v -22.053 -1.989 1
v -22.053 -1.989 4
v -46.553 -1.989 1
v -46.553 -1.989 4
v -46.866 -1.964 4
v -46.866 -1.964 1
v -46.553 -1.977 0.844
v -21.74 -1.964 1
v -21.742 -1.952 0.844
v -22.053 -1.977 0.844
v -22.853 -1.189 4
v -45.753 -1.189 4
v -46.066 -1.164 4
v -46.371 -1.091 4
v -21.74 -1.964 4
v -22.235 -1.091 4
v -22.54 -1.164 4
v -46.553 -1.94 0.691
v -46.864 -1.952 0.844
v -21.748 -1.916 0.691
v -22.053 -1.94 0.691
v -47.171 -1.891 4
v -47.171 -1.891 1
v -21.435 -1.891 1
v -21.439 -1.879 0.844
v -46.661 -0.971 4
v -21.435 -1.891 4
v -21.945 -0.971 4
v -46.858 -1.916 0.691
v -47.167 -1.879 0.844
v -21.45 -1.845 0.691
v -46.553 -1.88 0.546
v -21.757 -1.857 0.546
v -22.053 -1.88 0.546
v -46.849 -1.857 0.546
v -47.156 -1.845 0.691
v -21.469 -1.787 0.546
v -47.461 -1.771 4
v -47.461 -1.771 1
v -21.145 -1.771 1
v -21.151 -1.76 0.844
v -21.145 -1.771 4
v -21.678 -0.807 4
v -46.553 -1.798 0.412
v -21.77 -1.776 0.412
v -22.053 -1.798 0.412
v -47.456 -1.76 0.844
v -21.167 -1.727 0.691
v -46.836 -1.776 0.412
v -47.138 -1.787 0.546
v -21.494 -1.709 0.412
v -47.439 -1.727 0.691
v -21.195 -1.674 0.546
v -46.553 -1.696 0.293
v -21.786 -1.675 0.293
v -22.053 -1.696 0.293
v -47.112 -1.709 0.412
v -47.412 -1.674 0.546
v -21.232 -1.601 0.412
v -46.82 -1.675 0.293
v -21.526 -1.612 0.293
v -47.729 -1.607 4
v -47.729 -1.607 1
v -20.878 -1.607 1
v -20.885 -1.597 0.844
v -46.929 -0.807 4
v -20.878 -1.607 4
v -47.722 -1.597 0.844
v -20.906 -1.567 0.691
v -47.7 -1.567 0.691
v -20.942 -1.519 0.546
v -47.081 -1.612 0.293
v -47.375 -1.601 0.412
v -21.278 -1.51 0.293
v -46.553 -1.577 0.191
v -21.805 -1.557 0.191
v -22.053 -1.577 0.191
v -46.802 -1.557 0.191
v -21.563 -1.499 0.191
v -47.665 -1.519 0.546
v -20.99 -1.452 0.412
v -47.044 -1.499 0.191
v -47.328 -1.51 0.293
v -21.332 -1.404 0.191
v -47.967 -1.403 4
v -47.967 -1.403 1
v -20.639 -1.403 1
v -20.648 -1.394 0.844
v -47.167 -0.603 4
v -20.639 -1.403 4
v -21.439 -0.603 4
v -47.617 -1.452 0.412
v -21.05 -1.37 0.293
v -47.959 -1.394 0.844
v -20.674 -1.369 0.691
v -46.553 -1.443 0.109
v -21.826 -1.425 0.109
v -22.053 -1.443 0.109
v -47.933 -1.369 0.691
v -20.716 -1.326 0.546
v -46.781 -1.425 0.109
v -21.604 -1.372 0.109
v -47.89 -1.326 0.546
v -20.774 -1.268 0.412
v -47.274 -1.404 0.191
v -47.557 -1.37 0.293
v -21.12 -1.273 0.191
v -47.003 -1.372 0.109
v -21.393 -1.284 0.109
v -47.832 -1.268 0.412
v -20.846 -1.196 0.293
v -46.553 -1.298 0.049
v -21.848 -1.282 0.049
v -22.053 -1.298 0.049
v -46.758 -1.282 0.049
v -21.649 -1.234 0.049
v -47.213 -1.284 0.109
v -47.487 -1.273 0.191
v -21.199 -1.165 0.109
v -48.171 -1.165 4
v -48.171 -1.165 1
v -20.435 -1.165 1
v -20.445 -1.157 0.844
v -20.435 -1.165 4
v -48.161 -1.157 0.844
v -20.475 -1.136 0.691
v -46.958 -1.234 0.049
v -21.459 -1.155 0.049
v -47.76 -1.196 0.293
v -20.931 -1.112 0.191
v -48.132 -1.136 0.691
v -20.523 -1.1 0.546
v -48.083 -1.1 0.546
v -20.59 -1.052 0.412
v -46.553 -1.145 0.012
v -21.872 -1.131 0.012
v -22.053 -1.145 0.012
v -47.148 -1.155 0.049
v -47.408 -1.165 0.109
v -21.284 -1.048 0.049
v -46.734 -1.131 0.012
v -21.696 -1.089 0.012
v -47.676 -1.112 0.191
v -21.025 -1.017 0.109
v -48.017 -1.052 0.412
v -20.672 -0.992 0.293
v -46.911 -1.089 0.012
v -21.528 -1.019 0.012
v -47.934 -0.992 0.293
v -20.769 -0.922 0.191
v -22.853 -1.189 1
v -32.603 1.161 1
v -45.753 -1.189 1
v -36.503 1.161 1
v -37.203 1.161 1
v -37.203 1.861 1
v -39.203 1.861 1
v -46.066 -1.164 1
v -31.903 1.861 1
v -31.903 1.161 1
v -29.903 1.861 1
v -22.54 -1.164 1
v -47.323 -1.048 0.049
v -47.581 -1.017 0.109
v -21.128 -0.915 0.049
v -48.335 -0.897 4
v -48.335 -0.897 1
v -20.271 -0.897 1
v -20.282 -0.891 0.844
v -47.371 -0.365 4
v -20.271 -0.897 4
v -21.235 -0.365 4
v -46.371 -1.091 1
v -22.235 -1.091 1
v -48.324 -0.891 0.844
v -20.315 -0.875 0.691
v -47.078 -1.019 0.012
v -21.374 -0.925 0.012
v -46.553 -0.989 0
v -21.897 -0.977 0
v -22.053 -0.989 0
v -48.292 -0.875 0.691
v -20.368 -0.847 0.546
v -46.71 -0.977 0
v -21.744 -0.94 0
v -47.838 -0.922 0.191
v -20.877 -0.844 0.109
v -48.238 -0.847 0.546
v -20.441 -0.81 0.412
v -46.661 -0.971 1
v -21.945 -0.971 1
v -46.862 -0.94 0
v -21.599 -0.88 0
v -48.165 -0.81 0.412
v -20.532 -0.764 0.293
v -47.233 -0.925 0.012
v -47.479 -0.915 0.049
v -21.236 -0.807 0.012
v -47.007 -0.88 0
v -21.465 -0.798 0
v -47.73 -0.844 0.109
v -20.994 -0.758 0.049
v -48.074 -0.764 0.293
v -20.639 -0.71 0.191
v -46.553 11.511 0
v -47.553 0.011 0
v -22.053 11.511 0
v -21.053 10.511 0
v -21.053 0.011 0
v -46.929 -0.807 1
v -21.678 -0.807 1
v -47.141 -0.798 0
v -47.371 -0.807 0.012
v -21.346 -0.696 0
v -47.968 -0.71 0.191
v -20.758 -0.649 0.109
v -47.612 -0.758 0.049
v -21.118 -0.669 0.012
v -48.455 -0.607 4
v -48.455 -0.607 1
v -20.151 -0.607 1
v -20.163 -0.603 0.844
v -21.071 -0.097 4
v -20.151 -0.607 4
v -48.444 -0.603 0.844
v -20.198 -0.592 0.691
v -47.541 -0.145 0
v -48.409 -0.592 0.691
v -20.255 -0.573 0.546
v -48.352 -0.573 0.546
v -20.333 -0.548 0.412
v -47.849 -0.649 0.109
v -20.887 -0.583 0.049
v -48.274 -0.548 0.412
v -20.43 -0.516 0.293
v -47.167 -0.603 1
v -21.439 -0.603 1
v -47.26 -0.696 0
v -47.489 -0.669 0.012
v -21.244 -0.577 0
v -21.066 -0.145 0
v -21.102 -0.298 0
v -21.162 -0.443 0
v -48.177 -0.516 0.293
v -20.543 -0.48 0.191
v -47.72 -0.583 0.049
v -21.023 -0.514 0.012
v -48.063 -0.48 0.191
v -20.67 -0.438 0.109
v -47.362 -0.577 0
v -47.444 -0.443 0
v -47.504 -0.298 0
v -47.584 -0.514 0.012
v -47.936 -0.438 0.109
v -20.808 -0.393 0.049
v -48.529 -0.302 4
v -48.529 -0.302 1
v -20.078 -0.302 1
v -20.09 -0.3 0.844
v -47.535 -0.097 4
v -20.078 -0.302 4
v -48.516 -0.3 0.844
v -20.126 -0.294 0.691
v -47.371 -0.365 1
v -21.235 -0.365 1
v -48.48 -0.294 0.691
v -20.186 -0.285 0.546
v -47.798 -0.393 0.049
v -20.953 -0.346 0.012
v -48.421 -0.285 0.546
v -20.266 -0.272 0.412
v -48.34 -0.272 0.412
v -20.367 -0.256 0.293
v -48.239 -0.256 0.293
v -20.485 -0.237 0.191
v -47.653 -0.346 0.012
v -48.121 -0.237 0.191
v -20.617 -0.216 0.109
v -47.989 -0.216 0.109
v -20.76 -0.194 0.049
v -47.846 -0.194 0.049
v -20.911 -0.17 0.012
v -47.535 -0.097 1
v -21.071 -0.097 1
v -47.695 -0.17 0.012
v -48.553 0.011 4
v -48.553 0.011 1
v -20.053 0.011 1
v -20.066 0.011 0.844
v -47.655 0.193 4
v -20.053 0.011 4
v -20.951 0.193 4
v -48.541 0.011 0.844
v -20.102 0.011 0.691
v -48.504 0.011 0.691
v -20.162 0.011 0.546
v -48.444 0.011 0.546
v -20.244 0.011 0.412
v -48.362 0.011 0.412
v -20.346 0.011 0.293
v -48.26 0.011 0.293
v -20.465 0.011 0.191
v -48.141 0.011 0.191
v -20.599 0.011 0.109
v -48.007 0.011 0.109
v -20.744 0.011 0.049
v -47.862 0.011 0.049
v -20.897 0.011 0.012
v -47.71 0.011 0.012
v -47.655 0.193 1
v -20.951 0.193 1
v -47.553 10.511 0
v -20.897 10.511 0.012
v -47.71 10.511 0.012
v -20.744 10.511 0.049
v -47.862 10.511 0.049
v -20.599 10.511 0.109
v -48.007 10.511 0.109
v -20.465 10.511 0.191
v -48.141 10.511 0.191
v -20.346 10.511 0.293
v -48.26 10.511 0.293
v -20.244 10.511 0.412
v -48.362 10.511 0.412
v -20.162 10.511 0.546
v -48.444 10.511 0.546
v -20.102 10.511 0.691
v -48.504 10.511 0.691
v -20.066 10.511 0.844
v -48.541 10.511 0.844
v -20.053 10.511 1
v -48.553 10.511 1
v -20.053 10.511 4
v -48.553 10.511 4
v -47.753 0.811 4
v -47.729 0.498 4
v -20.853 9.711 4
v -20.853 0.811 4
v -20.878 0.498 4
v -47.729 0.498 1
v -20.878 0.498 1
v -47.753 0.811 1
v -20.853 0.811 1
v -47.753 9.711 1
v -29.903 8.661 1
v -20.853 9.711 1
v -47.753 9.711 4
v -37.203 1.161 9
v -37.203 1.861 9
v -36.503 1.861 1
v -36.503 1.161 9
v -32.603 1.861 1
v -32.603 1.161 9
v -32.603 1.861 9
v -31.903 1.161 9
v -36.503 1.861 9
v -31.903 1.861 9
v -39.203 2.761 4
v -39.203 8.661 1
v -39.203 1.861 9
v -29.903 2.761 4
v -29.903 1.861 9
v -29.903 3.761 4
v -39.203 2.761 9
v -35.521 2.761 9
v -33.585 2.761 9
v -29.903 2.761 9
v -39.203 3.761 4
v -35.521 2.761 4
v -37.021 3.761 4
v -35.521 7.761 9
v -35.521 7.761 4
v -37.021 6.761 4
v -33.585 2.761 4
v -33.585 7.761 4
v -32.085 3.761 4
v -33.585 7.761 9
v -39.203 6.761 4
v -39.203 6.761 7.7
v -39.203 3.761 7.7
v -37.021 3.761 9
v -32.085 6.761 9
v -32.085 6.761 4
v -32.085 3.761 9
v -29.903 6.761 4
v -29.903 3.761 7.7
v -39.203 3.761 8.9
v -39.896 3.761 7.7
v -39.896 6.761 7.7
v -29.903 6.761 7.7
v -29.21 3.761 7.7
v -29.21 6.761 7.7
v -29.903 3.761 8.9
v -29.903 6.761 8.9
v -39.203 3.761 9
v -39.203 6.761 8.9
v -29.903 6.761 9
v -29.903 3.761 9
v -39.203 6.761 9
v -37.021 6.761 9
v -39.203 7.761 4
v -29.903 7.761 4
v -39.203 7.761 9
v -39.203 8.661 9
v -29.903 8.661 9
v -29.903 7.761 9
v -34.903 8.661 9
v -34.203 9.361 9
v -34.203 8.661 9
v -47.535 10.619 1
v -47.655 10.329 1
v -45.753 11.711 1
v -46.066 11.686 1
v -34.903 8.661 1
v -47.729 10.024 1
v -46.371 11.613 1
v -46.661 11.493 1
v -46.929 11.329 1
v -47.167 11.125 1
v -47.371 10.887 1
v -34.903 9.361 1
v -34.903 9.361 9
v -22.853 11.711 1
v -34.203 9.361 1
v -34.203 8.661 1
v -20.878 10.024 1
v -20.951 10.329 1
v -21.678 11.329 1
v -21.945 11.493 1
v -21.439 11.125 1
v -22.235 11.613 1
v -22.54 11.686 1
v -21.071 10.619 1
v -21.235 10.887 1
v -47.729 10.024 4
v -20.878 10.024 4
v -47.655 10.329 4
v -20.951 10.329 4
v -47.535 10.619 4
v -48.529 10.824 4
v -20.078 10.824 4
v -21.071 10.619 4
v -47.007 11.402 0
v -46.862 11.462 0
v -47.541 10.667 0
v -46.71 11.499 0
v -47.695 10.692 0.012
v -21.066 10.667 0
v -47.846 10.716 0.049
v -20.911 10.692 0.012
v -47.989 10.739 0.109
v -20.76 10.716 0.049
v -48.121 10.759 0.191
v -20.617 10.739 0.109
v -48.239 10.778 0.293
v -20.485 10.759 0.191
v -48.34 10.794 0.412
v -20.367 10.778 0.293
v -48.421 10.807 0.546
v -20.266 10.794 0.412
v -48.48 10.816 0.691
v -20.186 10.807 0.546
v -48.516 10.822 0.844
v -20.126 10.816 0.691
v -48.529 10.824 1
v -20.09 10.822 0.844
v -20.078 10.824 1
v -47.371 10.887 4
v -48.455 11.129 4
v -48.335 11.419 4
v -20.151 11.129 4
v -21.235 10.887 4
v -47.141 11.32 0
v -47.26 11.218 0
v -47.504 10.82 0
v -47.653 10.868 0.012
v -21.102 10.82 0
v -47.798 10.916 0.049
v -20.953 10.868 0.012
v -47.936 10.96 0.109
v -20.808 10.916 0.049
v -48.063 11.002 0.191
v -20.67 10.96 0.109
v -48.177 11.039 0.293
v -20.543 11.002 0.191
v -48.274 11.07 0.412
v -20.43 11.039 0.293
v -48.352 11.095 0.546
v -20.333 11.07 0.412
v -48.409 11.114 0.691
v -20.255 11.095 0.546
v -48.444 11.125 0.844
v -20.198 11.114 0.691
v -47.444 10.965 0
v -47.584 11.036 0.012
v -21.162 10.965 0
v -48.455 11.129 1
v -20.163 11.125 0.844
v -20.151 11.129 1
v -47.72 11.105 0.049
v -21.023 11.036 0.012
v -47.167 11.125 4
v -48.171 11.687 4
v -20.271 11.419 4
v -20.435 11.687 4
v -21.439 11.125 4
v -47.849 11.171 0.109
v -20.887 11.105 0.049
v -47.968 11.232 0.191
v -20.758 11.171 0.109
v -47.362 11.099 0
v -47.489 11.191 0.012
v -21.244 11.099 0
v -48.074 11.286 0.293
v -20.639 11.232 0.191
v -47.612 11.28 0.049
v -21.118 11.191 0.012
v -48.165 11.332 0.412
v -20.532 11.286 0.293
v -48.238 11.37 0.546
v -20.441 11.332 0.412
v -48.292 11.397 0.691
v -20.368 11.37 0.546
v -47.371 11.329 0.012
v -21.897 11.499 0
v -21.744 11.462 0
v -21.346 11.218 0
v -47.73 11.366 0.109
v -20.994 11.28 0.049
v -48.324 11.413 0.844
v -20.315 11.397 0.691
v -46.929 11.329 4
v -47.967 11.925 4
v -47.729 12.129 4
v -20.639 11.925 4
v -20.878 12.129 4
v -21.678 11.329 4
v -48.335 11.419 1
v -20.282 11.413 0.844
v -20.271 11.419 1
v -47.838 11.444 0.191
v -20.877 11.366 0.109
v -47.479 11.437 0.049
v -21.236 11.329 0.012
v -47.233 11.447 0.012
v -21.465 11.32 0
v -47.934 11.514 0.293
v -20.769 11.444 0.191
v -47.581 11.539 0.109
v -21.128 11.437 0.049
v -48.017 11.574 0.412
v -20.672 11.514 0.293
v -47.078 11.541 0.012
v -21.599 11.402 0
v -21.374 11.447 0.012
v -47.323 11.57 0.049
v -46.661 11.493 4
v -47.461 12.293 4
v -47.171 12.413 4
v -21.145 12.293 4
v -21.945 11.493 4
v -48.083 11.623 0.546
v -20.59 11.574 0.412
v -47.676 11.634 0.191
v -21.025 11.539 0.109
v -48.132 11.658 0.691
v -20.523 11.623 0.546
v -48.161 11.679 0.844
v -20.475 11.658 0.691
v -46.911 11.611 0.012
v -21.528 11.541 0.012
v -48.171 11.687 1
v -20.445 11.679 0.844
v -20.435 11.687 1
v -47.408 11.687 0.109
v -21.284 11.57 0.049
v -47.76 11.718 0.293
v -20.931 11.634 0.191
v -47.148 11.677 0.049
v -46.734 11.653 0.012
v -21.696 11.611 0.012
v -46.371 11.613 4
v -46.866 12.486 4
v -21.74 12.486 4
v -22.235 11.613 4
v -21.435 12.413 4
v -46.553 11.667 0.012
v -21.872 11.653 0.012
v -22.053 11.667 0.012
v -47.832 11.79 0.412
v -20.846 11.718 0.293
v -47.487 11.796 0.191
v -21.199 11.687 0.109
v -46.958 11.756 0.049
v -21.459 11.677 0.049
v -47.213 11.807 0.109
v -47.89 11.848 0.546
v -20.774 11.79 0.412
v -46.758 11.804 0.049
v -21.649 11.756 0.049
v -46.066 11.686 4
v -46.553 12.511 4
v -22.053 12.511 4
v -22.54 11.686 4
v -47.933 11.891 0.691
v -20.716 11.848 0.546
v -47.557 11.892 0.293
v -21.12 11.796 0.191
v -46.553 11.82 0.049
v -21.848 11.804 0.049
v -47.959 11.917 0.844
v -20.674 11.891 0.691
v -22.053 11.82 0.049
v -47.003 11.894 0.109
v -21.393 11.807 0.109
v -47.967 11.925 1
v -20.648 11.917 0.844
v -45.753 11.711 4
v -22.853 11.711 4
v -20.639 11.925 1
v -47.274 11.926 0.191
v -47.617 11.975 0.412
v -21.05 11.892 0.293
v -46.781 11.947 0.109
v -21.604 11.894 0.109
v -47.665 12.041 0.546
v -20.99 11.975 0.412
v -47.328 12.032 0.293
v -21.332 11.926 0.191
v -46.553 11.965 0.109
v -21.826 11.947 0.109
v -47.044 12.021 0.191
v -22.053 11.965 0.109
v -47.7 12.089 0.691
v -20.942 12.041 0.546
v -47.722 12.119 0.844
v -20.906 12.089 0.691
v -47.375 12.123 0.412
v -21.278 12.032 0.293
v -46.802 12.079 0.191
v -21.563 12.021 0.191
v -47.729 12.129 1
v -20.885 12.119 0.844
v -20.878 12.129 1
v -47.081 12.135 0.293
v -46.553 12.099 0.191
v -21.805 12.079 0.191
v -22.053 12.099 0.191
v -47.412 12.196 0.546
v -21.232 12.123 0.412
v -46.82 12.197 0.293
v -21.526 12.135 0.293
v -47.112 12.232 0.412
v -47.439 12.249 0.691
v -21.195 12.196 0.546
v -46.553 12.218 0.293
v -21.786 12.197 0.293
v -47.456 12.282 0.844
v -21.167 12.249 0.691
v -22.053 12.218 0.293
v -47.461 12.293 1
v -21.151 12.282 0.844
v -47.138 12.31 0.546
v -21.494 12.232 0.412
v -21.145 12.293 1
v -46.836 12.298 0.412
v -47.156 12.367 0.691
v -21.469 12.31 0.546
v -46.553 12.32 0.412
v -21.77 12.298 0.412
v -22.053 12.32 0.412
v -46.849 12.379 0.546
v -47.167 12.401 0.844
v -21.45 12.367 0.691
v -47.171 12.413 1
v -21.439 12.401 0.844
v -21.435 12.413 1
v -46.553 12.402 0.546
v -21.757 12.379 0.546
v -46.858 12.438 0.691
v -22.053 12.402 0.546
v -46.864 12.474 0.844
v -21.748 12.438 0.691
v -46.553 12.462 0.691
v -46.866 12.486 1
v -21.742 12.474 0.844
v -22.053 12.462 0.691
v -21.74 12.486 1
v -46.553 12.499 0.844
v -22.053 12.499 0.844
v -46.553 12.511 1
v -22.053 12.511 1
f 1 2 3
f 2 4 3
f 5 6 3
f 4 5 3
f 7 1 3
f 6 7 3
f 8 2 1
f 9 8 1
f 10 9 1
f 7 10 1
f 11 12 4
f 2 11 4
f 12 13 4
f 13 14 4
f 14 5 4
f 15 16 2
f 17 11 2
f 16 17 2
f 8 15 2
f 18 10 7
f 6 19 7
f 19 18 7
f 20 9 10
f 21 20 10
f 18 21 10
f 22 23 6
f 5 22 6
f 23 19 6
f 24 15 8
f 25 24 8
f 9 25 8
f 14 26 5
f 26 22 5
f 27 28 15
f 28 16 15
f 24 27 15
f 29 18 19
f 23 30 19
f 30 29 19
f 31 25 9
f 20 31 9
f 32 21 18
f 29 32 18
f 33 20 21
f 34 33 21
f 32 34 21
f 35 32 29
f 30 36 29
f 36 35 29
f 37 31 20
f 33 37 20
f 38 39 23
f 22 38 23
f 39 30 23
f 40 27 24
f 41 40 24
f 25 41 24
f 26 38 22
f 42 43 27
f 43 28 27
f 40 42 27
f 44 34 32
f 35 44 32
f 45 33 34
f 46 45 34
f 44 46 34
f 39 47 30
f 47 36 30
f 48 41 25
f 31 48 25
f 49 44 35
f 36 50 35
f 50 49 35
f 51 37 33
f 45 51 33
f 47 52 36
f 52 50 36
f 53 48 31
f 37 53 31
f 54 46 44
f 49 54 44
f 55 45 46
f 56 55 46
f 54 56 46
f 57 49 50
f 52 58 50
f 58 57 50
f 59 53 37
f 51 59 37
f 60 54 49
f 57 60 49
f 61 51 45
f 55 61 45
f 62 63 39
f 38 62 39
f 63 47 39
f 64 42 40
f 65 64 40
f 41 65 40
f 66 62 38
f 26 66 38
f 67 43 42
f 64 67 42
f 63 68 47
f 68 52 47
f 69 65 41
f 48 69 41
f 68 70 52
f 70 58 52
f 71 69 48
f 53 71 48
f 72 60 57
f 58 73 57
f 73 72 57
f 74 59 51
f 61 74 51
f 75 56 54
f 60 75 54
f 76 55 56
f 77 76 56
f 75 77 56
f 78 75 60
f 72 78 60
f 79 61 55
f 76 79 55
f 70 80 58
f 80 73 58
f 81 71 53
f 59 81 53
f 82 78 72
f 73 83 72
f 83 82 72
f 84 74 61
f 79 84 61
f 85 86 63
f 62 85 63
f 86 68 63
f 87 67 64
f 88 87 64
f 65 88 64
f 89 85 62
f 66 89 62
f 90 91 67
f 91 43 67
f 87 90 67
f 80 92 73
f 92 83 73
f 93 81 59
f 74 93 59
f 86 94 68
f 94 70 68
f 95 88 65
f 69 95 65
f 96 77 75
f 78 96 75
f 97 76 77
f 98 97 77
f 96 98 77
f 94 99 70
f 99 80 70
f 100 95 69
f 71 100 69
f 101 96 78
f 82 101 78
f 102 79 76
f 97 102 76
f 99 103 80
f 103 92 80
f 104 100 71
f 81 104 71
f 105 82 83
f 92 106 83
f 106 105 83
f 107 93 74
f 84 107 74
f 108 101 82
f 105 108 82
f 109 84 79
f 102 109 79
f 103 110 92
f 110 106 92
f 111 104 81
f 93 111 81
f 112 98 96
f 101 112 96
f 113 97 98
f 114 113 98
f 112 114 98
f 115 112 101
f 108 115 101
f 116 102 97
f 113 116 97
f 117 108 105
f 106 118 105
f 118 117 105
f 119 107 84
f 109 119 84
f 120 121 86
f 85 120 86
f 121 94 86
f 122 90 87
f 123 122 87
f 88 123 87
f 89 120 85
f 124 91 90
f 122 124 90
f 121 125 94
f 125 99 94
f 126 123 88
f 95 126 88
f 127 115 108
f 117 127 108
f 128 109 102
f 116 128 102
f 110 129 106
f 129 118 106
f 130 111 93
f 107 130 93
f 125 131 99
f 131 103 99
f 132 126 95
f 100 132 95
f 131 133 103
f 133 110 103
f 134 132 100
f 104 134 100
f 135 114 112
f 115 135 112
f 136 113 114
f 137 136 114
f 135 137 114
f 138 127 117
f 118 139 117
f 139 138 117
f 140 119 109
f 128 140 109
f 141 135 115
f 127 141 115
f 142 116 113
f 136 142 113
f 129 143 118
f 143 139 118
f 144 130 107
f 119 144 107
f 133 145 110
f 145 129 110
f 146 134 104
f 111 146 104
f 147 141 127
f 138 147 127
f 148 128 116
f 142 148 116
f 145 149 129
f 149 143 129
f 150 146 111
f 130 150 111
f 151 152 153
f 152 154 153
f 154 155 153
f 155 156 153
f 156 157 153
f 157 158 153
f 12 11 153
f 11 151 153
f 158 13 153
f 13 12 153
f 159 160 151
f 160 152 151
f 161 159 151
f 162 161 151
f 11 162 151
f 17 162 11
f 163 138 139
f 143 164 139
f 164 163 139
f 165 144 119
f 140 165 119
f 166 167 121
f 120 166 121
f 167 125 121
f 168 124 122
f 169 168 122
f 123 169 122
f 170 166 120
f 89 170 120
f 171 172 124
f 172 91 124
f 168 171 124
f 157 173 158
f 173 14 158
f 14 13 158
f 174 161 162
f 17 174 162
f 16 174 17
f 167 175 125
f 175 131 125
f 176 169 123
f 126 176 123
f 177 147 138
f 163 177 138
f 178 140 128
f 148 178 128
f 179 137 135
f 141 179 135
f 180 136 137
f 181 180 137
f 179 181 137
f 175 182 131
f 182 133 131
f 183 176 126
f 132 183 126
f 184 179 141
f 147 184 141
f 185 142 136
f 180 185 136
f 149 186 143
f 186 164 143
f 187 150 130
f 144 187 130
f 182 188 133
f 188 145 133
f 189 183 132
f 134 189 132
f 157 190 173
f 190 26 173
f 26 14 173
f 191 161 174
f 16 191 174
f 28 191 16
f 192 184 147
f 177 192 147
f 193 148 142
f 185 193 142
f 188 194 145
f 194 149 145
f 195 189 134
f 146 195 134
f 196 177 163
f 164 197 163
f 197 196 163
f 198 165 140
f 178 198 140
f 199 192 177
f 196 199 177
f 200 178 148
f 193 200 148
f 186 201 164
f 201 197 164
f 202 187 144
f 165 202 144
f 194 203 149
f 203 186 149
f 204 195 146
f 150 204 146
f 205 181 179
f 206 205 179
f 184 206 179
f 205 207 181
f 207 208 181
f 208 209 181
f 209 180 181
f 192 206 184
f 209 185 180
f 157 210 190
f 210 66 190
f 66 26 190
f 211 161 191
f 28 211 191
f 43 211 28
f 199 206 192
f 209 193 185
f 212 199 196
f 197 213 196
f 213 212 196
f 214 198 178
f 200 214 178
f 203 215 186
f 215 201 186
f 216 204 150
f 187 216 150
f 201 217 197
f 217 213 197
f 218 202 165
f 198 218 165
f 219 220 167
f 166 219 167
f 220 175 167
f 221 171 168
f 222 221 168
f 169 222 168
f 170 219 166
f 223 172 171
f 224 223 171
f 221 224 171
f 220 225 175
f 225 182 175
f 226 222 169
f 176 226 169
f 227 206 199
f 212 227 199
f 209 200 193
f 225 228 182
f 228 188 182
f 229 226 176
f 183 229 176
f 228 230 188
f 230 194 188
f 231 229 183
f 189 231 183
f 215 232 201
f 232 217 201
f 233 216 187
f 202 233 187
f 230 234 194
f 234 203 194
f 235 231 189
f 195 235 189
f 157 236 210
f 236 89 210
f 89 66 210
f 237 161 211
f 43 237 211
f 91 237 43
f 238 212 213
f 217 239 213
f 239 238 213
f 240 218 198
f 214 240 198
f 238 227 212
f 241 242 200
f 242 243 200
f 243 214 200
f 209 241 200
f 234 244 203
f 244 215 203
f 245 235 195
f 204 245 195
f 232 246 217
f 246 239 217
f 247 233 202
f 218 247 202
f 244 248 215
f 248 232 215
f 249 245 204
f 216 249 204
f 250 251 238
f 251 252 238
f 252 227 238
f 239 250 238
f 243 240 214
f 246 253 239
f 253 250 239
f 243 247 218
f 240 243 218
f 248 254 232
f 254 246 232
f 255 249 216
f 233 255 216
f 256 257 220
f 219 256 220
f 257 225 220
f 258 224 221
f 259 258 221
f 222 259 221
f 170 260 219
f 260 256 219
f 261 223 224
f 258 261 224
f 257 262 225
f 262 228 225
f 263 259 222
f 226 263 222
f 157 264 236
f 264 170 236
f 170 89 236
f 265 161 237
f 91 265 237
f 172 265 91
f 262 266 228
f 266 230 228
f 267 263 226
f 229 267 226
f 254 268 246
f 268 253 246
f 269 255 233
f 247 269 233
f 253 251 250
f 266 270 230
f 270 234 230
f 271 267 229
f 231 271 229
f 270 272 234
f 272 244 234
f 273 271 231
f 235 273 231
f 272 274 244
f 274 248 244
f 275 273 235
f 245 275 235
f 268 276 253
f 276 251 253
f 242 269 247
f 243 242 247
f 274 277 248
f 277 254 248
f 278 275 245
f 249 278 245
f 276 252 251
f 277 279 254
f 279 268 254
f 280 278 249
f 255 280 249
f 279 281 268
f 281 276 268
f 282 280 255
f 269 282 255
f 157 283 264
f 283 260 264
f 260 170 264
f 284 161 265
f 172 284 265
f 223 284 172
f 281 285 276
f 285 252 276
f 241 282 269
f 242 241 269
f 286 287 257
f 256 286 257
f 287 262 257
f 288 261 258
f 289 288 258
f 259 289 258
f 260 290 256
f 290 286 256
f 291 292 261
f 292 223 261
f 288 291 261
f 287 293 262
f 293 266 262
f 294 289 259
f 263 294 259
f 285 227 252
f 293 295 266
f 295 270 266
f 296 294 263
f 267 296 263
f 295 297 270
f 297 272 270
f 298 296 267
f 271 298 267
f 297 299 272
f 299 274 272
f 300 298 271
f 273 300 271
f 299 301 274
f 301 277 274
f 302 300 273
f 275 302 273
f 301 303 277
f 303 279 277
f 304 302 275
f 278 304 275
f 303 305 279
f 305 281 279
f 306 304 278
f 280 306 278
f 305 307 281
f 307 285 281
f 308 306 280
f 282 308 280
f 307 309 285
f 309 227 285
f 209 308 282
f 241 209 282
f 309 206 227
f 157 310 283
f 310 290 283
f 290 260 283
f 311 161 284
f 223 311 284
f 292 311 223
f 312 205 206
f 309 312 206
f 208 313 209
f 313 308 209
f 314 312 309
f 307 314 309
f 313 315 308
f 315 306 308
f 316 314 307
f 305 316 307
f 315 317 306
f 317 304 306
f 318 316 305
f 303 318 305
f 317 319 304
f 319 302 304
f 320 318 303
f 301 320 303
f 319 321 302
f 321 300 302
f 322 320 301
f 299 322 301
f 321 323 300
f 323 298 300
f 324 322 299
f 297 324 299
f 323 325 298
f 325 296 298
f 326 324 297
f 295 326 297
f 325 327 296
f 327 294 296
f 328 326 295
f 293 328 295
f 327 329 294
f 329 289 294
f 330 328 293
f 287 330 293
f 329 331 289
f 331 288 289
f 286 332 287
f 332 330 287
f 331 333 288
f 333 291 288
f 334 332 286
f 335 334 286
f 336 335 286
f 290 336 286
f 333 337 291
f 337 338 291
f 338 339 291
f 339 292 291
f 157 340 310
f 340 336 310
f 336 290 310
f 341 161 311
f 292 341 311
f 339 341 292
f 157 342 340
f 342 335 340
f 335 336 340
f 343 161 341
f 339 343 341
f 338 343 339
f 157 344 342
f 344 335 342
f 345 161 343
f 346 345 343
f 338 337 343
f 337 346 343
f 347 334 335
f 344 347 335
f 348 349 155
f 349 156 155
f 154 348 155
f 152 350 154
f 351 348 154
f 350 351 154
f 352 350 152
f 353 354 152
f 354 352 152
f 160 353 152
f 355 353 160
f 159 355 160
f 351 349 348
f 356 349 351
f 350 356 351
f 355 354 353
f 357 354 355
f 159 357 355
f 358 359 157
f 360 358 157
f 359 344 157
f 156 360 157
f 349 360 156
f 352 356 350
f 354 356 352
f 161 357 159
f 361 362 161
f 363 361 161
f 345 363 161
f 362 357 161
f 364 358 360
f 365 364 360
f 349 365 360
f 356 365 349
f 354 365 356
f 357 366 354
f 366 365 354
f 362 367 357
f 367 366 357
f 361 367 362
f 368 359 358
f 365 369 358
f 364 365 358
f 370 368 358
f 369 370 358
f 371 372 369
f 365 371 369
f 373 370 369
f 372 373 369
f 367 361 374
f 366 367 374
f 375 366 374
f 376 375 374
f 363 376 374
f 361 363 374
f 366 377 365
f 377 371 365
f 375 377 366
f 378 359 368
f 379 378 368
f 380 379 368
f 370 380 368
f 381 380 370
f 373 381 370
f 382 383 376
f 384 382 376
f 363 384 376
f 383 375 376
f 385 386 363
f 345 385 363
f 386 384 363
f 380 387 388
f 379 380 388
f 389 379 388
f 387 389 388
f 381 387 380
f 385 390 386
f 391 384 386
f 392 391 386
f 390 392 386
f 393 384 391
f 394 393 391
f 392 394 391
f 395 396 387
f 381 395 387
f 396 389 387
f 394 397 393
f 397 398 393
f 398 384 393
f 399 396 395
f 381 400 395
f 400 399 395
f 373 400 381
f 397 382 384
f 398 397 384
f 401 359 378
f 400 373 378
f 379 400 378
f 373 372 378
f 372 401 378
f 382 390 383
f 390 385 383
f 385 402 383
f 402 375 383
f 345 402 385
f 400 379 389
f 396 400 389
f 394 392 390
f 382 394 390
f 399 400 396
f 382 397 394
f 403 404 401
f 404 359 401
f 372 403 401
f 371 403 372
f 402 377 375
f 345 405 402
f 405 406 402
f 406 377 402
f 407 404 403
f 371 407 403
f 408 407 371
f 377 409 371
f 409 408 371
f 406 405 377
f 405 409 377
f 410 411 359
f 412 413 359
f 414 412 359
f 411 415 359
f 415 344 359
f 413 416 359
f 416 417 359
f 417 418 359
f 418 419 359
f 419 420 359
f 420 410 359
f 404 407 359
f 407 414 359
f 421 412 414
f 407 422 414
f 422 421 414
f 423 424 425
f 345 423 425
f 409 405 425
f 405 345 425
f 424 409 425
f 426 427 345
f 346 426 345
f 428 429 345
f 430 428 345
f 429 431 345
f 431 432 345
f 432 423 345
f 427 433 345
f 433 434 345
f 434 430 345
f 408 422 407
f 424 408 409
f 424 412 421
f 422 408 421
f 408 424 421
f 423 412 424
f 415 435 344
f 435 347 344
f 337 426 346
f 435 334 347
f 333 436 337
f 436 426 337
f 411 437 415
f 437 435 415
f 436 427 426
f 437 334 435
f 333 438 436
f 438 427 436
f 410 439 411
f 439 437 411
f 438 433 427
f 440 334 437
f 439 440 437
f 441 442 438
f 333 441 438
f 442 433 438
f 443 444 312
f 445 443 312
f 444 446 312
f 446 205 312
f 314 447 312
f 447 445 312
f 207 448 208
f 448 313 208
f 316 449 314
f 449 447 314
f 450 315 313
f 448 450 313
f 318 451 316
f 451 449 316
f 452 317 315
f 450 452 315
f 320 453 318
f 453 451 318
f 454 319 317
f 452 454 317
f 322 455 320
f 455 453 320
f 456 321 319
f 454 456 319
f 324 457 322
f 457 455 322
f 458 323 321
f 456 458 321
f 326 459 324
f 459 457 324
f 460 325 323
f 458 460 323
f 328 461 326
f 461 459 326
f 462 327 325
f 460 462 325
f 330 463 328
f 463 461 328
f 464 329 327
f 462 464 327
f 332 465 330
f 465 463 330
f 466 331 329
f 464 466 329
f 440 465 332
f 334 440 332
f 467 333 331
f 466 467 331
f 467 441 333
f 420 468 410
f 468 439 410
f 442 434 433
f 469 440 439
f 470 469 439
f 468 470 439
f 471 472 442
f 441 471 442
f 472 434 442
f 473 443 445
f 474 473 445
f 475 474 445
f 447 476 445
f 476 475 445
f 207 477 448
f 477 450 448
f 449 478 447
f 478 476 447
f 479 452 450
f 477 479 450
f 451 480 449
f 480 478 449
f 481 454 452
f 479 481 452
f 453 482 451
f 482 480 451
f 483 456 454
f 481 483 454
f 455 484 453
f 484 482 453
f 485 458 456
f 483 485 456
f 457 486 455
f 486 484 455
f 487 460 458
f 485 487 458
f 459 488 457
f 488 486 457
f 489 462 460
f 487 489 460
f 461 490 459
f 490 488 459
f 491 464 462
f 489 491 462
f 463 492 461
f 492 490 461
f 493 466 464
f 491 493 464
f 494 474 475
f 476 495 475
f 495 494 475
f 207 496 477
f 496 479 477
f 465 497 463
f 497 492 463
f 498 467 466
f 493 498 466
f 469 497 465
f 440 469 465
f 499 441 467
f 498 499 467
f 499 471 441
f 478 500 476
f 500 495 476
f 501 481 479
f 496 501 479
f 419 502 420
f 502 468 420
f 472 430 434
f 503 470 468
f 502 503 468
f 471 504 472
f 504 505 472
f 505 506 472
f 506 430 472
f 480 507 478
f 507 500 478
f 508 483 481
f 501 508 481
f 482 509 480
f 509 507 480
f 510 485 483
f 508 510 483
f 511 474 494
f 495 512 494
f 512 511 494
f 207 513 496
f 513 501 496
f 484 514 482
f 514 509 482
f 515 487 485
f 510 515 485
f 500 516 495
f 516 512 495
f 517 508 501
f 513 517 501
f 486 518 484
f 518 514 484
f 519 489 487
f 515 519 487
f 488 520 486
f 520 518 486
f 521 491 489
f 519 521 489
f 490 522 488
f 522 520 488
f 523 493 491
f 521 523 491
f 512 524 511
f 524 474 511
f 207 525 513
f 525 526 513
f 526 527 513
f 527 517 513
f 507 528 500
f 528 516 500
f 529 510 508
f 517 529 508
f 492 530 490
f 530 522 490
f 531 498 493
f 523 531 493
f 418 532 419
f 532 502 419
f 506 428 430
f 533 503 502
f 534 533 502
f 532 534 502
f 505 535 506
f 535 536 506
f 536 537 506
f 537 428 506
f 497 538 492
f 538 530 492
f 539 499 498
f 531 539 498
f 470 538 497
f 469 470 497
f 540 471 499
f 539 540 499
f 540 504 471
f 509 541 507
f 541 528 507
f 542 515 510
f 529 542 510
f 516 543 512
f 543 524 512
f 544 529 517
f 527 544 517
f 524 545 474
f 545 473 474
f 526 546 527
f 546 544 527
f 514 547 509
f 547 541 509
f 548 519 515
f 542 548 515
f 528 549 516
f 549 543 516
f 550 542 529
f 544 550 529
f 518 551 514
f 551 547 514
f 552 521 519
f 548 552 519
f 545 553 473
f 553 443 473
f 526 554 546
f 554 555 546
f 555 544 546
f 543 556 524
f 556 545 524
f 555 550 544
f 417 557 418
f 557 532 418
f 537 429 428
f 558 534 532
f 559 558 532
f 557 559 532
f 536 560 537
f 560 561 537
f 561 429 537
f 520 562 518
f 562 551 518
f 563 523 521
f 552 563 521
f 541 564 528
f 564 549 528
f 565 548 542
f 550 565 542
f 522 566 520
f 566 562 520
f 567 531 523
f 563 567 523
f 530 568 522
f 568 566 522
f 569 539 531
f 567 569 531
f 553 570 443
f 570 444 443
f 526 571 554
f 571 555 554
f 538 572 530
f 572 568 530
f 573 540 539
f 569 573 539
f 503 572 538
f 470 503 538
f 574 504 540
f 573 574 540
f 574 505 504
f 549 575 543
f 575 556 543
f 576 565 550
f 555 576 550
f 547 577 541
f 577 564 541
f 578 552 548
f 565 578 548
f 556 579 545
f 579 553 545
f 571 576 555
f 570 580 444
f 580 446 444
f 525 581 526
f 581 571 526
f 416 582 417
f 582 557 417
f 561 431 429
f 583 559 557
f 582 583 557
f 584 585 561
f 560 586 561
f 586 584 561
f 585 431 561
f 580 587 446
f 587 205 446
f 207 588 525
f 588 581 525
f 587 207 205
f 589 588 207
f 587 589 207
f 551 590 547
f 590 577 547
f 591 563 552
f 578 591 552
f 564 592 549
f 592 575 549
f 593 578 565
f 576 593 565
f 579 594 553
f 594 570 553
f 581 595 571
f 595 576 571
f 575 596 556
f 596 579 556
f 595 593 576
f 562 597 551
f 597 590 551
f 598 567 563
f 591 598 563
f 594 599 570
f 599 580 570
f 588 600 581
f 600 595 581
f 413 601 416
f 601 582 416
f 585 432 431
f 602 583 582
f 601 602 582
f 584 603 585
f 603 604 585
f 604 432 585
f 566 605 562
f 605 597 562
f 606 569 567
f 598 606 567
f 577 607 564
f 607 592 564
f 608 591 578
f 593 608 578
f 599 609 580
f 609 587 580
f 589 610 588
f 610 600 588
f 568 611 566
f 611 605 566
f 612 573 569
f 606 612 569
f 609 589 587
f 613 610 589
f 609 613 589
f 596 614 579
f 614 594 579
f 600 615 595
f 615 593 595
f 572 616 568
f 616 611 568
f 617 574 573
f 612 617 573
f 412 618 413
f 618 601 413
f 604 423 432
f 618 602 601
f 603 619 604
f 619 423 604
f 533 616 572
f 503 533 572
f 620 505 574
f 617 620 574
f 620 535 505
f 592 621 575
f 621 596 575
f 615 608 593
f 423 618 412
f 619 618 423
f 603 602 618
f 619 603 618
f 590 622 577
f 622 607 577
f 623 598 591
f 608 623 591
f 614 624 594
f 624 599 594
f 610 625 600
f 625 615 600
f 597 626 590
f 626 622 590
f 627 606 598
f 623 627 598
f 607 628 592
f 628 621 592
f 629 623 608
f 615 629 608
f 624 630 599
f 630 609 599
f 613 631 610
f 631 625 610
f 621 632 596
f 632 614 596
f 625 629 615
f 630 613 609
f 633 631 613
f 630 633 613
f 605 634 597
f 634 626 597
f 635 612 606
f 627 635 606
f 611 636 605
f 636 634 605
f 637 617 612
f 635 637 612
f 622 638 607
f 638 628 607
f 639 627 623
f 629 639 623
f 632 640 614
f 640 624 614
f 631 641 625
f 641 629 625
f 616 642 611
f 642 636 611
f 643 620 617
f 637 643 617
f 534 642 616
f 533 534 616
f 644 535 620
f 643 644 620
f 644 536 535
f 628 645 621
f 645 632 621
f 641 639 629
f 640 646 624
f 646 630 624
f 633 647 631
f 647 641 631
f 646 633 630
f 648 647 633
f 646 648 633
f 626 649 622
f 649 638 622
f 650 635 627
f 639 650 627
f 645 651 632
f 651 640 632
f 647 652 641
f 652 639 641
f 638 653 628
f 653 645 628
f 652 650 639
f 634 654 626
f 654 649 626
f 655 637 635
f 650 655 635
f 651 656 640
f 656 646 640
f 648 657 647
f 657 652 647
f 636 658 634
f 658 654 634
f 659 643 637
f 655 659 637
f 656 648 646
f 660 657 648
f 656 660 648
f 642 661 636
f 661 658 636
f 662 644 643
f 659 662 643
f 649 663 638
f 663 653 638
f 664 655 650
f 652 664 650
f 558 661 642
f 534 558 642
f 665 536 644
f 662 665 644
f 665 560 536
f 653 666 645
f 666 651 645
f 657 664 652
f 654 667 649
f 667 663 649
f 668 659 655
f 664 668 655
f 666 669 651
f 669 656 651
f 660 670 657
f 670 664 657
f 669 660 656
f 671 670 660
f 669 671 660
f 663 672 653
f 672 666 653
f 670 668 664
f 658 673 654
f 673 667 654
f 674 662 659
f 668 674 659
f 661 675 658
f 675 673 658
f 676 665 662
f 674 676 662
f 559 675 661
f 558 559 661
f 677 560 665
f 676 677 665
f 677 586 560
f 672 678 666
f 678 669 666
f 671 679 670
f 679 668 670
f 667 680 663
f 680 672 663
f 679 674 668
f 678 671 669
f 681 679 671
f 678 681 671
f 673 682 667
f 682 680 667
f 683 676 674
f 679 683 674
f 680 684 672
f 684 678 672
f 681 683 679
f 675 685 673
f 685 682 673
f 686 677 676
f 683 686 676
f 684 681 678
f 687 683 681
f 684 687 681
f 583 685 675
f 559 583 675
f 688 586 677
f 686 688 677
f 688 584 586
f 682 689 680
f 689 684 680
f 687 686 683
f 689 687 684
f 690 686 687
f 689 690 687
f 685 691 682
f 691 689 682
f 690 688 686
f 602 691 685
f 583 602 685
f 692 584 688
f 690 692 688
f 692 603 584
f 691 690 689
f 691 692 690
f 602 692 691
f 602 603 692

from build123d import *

# Parameters (mm, degrees)
CROQUIS1_W              = 28.5
CROQUIS1_H              = 14.5
SALIENTE_EXTRUIR1_DEPTH = 1
CROQUIS2_W              = 28.5
CROQUIS2_H              = 14.5
CROQUIS2_W_2            = 26.9
CROQUIS2_H_2            = 12.9
SALIENTE_EXTRUIR2_DEPTH = 3
SALIENTE_EXTRUIR3_DEPTH = 8
CORTAR_EXTRUIR1_DEPTH   = 5
SALIENTE_EXTRUIR4_DEPTH = 3
REDONDEO1_R             = 2
REDONDEO2_R             = 1


with BuildPart() as part:
    # Croquis1 → Saliente-Extruir1 (new body)
    with BuildSketch(Plane.XY):
        with Locations((-34.303237222, 5.261061947)):
            Rectangle(CROQUIS1_W, CROQUIS1_H)
    extrude(amount=SALIENTE_EXTRUIR1_DEPTH)

    # Croquis2 → Saliente-Extruir2 (add)
    with BuildSketch(Plane.XY.offset(1)):
        with Locations((-34.303237222, 5.261061947)):
            Rectangle(CROQUIS2_W, CROQUIS2_H)
        with Locations((-34.303237222, 5.261061947)):
            Rectangle(CROQUIS2_W_2, CROQUIS2_H_2, mode=Mode.SUBTRACT)
    extrude(amount=SALIENTE_EXTRUIR2_DEPTH)

    # Croquis3 → Saliente-Extruir3 (add)
    with BuildSketch(Plane.XY.offset(1)):
        Polygon((-39.203237222, 8.661061947), (-34.903237222, 8.661061947), (-34.903237222, 9.361061947), (-34.203237222, 9.361061947), (-34.203237222, 8.661061947), (-29.903237222, 8.661061947), (-29.903237222, 1.861061947), (-31.903237222, 1.861061947), (-31.903237222, 1.161061947), (-32.603237222, 1.161061947), (-32.603237222, 1.861061947), (-36.503237222, 1.861061947), (-36.503237222, 1.161061947), (-37.203237222, 1.161061947), (-37.203237222, 1.861061947), (-39.203237222, 1.861061947), align=None)
    extrude(amount=SALIENTE_EXTRUIR3_DEPTH)

    # Croquis4 → Cortar-Extruir1 (cut)
    with BuildSketch(Plane.XY.offset(9)):
        Polygon((-39.203237222, 6.761061947), (-37.021186236, 6.761061947), (-37.021186236, 5.261061947), (-37.021186236, 3.761061947), (-39.203237222, 3.761061947), (-39.203237222, 2.761061947), (-35.521186236, 2.761061947), (-35.521186236, 5.261061947), (-35.521186236, 7.761061947), (-39.203237222, 7.761061947), align=None)
        Polygon((-29.903237222, 3.761061947), (-32.085288209, 3.761061947), (-32.085288209, 5.261061947), (-32.085288209, 6.761061947), (-29.903237222, 6.761061947), (-29.903237222, 7.761061947), (-33.585288209, 7.761061947), (-33.585288209, 5.261061947), (-33.585288209, 2.761061947), (-29.903237222, 2.761061947), align=None)
    extrude(amount=-CORTAR_EXTRUIR1_DEPTH, mode=Mode.SUBTRACT)

    # Croquis5 → Saliente-Extruir4 (add)
    with BuildSketch(Plane.XZ.offset(-3.761061947)):
        Polygon((-39.203237222, 8.9), (-39.896057545, 7.7), (-39.203237222, 7.7), align=None)
        Polygon((-29.903237222, 7.7), (-29.903237222, 8.9), (-29.210416899, 7.7), align=None)
    extrude(amount=-SALIENTE_EXTRUIR4_DEPTH)

    # Redondeo1
    redondeo1_edges = [part.edges().sort_by_distance(p)[0] for p in [
        (-47.753237222, 11.711061947, 2.5),
        (-47.753237222, -1.188938053, 2.5),
        (-20.853237222, -1.188938053, 2.5),
        (-20.853237222, 11.711061947, 2.5),
        (-48.553237222, 12.511061947, 2),
        (-20.053237222, 12.511061947, 2),
        (-20.053237222, -1.988938053, 2),
        (-48.553237222, -1.988938053, 2),
    ]]
    fillet(redondeo1_edges, radius=REDONDEO1_R)

    # Redondeo2
    redondeo2_edges = [part.edges().sort_by_distance(p)[0] for p in [
        (-34.303237222, 12.511061947, 0),
        (-48.553237222, 5.261061947, 0),
        (-20.053237222, 5.261061947, 0),
        (-34.303237222, -1.988938053, 0),
        (-47.967450785, -1.403151615, 0),
        (-47.967450785, 11.925275509, 0),
        (-20.63902366, -1.403151615, 0),
        (-20.63902366, 11.925275509, 0),
    ]]
    fillet(redondeo2_edges, radius=REDONDEO2_R)


solid = part.part
